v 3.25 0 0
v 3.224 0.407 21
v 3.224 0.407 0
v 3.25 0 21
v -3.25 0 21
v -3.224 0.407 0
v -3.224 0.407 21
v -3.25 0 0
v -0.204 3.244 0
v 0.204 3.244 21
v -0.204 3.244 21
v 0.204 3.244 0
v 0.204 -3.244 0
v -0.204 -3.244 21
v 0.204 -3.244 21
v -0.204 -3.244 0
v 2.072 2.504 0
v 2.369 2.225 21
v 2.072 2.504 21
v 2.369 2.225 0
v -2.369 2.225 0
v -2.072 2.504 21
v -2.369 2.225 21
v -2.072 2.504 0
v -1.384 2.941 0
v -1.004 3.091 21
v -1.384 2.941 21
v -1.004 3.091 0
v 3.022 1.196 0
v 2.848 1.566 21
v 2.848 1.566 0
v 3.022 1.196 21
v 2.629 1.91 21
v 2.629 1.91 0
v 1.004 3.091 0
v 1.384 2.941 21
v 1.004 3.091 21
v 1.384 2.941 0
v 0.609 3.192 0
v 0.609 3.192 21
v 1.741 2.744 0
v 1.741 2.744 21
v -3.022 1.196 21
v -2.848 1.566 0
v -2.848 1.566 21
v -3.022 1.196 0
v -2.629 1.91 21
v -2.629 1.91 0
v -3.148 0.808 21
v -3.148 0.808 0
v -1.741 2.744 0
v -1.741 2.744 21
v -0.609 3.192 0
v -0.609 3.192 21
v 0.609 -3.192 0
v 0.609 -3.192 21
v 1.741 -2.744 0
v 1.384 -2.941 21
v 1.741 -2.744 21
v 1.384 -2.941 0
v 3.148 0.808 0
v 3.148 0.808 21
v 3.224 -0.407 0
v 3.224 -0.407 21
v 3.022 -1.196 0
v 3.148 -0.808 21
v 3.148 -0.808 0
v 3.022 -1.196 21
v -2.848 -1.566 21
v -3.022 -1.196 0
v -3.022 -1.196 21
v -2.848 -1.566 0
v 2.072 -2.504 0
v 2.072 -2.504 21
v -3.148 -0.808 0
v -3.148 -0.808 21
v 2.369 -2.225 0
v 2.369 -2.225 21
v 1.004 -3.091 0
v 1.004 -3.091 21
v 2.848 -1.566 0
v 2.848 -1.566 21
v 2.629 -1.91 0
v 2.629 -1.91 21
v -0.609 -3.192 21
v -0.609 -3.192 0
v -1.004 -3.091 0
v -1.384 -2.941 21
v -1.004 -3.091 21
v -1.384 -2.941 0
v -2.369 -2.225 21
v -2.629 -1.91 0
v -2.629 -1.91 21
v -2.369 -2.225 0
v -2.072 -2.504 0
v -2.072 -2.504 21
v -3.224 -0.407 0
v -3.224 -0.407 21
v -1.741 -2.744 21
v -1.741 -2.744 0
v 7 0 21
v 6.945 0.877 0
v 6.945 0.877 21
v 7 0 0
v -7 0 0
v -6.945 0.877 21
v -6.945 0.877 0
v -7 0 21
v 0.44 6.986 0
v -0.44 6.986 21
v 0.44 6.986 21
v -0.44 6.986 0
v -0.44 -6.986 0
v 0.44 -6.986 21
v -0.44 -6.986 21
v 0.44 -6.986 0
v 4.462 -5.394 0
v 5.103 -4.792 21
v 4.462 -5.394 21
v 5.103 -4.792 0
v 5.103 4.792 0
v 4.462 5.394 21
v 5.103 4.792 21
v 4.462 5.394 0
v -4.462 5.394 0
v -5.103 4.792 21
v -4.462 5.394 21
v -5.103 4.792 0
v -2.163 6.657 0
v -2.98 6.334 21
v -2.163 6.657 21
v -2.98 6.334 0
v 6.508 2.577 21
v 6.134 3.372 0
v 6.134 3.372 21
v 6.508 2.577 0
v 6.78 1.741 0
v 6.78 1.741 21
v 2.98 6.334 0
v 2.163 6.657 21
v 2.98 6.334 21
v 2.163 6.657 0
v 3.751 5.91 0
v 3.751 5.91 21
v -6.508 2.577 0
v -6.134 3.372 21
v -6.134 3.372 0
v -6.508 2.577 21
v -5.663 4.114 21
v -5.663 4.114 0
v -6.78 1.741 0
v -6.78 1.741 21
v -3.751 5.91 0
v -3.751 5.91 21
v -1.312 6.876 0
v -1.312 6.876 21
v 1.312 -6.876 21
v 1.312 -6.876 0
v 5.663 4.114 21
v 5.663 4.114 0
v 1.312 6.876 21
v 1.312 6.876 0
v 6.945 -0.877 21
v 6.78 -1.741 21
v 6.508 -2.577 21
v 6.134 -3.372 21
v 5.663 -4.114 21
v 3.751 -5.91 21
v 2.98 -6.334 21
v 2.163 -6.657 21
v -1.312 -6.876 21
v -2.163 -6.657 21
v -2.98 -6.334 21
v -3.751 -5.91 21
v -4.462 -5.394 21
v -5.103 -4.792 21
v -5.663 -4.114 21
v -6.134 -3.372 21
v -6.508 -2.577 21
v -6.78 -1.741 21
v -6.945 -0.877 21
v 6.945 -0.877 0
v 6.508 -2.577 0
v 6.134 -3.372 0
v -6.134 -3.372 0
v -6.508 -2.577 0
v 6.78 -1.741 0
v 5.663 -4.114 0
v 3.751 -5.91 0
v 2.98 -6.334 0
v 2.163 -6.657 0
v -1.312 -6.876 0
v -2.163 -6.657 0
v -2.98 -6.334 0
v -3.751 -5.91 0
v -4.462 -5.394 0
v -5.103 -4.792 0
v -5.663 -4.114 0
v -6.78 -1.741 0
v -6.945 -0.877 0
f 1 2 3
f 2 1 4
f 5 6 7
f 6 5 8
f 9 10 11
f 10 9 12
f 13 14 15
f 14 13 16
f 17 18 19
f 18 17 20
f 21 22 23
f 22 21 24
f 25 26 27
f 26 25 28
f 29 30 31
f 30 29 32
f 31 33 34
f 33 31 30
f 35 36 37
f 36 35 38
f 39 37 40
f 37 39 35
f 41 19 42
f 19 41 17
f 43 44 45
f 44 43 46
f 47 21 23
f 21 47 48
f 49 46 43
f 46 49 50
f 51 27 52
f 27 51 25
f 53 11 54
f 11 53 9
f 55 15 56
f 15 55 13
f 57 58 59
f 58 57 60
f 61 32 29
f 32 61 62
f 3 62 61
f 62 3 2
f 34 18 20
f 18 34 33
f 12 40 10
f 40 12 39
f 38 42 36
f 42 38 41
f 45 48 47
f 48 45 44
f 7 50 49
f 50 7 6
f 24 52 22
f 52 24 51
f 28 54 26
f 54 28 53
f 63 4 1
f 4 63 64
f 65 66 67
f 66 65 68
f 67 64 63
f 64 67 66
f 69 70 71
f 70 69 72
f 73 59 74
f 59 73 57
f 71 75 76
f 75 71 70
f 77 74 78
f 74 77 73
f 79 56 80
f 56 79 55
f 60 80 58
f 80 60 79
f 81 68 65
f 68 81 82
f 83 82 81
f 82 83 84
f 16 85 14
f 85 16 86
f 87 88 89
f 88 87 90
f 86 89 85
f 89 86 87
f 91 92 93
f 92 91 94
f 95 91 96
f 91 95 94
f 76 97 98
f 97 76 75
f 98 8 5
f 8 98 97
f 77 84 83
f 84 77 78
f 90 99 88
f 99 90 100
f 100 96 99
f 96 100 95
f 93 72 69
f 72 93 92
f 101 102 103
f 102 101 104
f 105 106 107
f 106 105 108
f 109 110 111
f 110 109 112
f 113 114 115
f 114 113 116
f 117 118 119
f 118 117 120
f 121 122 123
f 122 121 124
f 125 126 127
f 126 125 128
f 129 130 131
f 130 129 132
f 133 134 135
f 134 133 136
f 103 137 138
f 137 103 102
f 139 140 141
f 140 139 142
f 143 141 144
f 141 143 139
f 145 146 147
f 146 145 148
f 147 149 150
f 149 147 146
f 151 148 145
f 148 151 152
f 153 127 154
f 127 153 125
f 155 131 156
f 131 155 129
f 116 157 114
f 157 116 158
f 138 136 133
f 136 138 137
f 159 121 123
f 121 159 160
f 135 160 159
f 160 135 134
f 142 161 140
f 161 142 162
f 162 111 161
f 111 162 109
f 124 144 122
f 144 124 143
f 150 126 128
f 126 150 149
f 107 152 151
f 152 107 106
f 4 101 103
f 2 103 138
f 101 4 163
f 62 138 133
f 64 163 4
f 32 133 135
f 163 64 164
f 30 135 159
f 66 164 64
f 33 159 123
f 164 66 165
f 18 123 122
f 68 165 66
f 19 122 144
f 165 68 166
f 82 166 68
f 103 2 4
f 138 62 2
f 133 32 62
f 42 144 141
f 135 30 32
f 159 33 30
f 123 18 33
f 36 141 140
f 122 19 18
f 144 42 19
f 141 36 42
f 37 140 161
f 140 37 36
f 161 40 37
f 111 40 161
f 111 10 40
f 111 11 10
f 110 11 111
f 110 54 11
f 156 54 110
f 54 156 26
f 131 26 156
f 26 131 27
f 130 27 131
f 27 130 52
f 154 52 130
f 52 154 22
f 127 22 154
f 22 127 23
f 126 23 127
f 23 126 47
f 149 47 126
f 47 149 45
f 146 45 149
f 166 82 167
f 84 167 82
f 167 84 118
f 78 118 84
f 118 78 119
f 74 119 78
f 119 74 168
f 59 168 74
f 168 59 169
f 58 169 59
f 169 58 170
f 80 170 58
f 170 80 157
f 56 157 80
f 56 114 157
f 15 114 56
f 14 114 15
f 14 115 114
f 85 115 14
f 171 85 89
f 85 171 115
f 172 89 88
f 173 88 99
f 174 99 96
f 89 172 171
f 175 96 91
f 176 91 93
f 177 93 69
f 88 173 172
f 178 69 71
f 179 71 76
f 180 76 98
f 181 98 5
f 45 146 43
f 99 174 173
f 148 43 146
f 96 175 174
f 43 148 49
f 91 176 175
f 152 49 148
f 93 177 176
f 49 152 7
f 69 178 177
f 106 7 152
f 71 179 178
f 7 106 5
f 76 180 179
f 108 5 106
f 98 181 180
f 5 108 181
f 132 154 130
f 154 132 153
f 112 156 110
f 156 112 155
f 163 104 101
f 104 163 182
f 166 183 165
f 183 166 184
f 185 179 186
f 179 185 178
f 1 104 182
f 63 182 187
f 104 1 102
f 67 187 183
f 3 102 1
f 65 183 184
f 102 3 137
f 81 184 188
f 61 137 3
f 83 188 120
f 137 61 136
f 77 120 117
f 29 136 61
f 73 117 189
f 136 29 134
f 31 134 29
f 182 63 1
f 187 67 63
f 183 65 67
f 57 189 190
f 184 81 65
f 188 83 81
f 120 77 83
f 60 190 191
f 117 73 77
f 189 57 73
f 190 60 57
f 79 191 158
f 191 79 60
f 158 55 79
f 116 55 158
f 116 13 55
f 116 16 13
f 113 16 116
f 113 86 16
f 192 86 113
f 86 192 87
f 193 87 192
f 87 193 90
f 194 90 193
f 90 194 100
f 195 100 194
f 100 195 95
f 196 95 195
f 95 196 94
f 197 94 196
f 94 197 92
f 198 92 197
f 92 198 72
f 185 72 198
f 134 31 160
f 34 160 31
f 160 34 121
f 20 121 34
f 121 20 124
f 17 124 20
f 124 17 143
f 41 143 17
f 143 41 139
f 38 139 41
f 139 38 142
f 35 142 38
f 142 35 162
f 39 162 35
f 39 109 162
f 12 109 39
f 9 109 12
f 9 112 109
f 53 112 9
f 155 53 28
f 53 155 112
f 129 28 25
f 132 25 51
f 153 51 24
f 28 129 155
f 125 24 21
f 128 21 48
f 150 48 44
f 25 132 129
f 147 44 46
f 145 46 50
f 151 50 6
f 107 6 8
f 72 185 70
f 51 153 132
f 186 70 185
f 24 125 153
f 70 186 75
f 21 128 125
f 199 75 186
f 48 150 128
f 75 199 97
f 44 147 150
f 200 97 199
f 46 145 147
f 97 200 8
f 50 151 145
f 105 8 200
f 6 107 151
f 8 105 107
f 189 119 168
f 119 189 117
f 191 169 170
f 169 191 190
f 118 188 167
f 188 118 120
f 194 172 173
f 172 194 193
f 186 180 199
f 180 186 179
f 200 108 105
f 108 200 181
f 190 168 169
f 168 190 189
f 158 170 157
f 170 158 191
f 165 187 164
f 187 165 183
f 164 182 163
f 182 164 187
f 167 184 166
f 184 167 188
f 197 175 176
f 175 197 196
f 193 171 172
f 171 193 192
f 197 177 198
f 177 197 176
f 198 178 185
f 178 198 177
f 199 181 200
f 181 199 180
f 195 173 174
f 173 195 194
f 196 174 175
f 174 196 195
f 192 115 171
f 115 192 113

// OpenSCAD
$fn = 50;


difference() {
	union() {
		cylinder(h = 21, r = 7.0000000000);
	}
	union() {
		translate(v = [0, 0, -100]) {
			cylinder(h = 200, r = 3.2500000000);
		}
	}
}
